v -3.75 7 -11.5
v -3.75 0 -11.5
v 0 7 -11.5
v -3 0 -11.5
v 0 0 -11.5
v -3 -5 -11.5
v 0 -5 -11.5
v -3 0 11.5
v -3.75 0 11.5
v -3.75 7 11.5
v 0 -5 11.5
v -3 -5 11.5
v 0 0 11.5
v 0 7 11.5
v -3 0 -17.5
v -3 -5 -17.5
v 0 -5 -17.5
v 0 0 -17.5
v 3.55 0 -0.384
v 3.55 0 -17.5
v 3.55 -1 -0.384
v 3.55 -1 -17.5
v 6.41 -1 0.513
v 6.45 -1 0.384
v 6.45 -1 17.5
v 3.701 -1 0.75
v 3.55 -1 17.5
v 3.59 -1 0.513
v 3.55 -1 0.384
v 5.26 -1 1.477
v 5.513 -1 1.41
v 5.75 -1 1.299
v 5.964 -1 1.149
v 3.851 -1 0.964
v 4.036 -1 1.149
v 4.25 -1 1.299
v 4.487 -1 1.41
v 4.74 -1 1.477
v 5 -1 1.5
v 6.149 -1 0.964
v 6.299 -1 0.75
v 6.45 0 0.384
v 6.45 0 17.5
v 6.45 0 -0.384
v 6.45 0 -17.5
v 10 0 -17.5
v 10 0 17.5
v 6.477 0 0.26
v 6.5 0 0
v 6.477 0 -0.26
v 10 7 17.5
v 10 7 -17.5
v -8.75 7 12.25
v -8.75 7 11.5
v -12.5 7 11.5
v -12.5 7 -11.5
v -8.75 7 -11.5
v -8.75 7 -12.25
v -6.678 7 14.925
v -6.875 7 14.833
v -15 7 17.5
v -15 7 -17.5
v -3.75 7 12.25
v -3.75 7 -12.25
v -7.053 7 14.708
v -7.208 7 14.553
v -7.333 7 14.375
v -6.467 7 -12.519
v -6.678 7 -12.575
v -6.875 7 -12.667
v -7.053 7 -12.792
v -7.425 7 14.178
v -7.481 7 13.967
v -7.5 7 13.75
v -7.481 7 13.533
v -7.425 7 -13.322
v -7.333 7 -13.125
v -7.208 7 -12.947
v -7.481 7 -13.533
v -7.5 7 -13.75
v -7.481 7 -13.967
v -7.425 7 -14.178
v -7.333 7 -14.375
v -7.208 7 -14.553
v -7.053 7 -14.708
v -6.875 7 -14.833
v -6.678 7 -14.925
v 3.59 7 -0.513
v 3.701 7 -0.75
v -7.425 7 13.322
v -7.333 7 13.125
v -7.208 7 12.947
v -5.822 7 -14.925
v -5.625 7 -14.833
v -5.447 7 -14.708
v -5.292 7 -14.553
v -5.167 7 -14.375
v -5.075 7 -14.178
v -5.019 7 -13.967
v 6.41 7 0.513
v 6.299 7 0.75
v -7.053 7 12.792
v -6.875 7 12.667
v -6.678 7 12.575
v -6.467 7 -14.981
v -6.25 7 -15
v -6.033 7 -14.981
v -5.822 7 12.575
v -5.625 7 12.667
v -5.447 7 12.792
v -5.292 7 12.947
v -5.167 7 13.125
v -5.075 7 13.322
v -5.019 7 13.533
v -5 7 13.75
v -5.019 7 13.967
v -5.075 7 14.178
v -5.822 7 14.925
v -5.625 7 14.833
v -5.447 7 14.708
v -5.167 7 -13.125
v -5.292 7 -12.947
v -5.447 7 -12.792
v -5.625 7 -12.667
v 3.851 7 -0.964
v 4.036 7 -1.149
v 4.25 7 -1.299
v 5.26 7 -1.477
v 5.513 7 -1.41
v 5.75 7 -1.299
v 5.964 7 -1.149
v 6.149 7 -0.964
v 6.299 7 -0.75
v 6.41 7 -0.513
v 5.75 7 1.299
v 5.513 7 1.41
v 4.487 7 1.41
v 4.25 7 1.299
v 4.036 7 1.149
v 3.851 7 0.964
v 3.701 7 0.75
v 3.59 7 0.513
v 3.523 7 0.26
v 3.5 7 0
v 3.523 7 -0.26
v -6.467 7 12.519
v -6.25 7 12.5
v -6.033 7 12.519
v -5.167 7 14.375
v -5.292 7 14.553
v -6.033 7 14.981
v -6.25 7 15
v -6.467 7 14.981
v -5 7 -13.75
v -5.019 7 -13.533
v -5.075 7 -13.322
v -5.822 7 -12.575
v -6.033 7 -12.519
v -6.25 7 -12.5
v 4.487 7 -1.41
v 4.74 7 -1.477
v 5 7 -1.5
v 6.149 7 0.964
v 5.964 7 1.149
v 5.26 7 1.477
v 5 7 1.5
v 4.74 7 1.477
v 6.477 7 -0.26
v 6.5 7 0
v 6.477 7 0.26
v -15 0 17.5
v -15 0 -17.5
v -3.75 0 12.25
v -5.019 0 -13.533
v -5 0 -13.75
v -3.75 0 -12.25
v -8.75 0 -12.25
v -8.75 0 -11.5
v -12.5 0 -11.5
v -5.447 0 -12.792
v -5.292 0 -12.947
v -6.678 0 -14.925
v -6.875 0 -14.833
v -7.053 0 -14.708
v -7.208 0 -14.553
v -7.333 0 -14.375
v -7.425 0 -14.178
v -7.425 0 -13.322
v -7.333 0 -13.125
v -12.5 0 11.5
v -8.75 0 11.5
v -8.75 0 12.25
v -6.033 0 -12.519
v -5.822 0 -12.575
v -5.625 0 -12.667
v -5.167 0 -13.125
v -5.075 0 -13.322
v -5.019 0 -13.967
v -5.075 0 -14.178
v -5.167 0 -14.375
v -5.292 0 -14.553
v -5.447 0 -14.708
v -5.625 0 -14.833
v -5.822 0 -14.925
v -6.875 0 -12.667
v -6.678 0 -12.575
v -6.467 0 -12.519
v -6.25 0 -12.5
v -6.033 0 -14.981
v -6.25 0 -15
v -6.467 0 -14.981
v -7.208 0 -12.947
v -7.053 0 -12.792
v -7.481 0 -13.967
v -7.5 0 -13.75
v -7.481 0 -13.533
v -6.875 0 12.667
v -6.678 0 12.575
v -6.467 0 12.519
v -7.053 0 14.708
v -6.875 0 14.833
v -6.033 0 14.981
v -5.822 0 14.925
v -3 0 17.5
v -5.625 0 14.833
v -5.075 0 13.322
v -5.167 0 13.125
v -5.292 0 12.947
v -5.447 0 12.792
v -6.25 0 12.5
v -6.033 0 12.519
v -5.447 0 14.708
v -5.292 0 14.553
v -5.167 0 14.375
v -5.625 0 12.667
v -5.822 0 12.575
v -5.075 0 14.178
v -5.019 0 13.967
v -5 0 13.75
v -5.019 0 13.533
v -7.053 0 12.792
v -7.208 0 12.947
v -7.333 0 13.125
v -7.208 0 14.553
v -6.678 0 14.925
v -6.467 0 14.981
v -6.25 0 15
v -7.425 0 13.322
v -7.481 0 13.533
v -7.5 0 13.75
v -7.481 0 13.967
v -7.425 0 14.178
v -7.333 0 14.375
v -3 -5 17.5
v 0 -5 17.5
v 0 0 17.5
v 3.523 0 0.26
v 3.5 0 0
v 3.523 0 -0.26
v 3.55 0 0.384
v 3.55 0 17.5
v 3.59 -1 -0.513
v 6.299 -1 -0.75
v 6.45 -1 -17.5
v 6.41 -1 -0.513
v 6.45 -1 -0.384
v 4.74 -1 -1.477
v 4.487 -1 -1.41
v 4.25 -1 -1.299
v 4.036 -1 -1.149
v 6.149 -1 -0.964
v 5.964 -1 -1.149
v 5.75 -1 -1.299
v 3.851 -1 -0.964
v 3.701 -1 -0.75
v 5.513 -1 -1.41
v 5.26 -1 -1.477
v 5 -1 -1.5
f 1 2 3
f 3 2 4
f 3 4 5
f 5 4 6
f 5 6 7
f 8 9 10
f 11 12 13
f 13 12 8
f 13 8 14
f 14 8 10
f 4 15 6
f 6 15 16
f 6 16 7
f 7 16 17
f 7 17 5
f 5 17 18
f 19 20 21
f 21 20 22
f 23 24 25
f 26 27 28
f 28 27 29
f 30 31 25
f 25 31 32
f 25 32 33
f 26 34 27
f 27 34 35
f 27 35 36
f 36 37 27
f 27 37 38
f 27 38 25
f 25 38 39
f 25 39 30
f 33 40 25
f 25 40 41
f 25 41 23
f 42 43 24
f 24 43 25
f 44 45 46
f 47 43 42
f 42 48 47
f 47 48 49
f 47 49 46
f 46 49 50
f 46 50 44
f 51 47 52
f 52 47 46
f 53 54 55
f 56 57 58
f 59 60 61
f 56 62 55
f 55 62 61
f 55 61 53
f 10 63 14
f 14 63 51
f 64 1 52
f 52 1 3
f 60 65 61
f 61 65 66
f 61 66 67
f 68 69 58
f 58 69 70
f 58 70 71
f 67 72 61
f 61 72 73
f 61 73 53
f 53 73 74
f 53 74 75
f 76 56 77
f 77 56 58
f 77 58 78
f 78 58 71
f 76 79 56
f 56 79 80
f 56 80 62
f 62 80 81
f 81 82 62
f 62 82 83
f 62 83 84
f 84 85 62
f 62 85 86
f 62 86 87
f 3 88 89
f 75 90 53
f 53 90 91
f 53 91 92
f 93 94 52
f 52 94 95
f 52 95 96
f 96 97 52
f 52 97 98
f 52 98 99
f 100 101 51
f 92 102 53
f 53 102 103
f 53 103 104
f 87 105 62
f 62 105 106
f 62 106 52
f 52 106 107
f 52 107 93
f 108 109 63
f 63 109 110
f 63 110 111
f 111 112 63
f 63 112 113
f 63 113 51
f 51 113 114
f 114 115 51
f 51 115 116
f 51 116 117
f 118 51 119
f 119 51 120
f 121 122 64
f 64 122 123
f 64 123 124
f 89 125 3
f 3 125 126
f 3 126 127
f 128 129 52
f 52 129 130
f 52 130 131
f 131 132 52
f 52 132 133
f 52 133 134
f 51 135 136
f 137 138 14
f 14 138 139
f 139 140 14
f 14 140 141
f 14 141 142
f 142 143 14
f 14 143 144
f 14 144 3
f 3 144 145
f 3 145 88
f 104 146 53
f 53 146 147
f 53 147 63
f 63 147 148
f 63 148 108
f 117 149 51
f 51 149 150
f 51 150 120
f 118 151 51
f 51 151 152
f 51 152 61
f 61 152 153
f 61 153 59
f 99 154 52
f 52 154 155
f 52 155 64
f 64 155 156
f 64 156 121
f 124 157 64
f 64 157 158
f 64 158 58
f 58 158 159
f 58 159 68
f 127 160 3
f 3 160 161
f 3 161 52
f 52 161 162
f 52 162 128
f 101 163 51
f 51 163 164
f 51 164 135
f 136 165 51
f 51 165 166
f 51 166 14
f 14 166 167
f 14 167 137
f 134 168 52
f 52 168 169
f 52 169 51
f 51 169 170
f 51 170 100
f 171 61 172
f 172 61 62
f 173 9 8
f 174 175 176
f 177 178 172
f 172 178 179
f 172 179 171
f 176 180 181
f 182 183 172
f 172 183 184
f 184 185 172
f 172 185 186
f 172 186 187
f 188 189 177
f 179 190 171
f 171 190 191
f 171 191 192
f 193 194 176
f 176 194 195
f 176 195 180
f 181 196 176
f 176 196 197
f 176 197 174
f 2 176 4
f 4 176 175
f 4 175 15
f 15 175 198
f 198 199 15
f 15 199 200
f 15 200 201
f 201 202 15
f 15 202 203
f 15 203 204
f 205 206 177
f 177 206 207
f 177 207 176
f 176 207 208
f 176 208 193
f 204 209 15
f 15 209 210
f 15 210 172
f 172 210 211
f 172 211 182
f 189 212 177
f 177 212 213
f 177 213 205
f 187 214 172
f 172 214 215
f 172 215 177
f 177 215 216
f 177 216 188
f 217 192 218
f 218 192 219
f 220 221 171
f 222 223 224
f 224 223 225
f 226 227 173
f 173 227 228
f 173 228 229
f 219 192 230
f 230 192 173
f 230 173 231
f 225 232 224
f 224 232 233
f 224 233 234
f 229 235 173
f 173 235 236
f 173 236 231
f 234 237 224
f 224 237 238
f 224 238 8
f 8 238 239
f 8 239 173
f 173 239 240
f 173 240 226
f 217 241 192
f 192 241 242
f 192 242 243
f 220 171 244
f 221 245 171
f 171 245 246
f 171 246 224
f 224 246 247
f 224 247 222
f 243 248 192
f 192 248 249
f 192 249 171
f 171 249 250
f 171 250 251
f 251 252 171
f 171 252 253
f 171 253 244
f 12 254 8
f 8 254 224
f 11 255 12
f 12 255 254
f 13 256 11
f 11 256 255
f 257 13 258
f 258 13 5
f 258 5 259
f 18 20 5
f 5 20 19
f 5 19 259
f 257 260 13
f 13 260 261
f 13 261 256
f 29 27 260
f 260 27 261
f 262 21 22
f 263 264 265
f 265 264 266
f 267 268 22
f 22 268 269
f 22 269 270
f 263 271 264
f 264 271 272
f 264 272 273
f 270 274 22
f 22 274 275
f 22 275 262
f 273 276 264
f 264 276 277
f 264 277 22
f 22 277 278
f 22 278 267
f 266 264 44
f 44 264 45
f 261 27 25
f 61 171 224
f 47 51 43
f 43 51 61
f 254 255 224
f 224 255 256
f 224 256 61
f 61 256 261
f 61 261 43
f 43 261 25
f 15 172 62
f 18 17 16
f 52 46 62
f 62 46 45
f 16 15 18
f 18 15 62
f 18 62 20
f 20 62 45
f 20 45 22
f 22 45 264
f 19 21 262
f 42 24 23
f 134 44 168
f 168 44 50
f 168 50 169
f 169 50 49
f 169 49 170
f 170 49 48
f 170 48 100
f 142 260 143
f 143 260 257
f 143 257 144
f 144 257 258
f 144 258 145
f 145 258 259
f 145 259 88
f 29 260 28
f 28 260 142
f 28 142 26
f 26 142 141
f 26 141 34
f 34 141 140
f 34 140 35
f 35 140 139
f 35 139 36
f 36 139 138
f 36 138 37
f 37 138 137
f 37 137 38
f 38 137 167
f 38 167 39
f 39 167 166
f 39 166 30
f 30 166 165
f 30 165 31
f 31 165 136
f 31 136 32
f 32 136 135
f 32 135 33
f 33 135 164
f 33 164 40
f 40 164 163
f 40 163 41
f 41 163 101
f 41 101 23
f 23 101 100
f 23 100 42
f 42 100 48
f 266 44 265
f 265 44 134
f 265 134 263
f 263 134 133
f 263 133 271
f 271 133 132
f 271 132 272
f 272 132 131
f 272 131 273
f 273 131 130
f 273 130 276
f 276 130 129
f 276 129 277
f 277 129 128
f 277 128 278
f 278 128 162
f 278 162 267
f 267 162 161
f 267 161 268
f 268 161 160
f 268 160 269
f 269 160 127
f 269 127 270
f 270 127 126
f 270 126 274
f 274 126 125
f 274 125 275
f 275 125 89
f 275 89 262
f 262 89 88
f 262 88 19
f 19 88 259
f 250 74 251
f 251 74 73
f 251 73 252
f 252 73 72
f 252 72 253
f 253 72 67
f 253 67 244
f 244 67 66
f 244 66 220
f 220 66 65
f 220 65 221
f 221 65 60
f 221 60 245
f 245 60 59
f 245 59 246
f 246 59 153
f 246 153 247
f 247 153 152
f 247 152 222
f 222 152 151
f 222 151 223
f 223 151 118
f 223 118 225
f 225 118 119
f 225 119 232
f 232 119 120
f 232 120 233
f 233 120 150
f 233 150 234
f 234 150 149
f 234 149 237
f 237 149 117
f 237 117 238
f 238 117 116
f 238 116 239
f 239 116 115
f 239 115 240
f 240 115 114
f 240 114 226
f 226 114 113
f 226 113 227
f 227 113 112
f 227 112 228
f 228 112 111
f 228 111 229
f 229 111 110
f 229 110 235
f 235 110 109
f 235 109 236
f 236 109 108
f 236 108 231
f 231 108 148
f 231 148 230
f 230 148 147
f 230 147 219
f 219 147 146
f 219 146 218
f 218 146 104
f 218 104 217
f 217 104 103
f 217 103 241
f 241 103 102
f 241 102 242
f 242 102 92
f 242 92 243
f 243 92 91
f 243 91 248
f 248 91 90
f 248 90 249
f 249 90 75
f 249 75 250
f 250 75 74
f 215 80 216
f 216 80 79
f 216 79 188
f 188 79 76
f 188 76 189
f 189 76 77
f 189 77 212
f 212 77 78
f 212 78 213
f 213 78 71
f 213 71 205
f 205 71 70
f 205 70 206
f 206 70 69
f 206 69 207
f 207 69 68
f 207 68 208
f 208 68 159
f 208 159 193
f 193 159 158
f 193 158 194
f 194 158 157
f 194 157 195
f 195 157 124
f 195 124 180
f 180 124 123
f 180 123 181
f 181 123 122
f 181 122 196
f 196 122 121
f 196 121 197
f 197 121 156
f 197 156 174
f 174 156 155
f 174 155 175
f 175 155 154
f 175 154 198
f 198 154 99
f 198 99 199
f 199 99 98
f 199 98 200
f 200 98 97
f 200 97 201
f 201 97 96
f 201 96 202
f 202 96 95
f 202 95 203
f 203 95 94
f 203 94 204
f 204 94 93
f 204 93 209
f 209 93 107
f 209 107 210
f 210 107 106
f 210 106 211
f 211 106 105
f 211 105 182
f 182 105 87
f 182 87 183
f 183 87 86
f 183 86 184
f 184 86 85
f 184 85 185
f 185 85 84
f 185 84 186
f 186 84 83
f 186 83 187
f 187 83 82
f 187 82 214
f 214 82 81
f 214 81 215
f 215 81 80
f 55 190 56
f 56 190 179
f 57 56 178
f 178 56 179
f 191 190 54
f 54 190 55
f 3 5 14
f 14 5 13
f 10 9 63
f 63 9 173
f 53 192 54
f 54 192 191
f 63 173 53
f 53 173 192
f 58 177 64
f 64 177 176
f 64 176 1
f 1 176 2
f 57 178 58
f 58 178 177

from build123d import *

# Parameters (mm, degrees)
MAIN_DEPTH            = 17.5
SKETCH2_R             = 1.5
SKETCH2_R_2           = 1.25
FIXINGHOLE_DEPTH      = 13
SKETCH3_W             = 12.5
SKETCH3_H             = 23
SERVOSQUAREHOLE_DEPTH = 13
SKETCH4_W             = 5
SKETCH4_H             = 24.5
CABLEHOLE_DEPTH       = 13


with BuildPart() as part:
    # Sketch1 → Main (new body, symmetric)
    with BuildSketch(Plane.XY):
        Polygon((10, 0), (10, 7), (-15, 7), (-15, 0), (-3, 0), (-3, -5), (0, -5), (0, 0), (3.55, 0), (3.55, -1), (6.45, -1), (6.45, 0), align=None)
    extrude(amount=MAIN_DEPTH, both=True)

    # Sketch2 → FixingHole (cut, through all)
    with BuildSketch(Plane(origin=(0, 7, 0), x_dir=(1, 0, 0), z_dir=(0, 1, 0))):
        with Locations((5, 0)):
            Circle(SKETCH2_R)
        with Locations((-6.25, 13.75)):
            Circle(SKETCH2_R_2)
        with Locations((-6.25, -13.75)):
            Circle(SKETCH2_R_2)
    extrude(amount=-FIXINGHOLE_DEPTH, mode=Mode.SUBTRACT)

    # Sketch3 → ServoSquareHole (cut, through all)
    with BuildSketch(Plane(origin=(0, 7, 0), x_dir=(1, 0, 0), z_dir=(0, 1, 0))):
        with Locations((-6.25, 0)):
            Rectangle(SKETCH3_W, SKETCH3_H)
    extrude(amount=-SERVOSQUAREHOLE_DEPTH, mode=Mode.SUBTRACT)

    # Sketch4 → CableHole (cut, through all)
    with BuildSketch(Plane(origin=(0, 7, 0), x_dir=(1, 0, 0), z_dir=(0, 1, 0))):
        with Locations((-6.25, 0)):
            Rectangle(SKETCH4_W, SKETCH4_H)
    extrude(amount=-CABLEHOLE_DEPTH, mode=Mode.SUBTRACT)


solid = part.part
